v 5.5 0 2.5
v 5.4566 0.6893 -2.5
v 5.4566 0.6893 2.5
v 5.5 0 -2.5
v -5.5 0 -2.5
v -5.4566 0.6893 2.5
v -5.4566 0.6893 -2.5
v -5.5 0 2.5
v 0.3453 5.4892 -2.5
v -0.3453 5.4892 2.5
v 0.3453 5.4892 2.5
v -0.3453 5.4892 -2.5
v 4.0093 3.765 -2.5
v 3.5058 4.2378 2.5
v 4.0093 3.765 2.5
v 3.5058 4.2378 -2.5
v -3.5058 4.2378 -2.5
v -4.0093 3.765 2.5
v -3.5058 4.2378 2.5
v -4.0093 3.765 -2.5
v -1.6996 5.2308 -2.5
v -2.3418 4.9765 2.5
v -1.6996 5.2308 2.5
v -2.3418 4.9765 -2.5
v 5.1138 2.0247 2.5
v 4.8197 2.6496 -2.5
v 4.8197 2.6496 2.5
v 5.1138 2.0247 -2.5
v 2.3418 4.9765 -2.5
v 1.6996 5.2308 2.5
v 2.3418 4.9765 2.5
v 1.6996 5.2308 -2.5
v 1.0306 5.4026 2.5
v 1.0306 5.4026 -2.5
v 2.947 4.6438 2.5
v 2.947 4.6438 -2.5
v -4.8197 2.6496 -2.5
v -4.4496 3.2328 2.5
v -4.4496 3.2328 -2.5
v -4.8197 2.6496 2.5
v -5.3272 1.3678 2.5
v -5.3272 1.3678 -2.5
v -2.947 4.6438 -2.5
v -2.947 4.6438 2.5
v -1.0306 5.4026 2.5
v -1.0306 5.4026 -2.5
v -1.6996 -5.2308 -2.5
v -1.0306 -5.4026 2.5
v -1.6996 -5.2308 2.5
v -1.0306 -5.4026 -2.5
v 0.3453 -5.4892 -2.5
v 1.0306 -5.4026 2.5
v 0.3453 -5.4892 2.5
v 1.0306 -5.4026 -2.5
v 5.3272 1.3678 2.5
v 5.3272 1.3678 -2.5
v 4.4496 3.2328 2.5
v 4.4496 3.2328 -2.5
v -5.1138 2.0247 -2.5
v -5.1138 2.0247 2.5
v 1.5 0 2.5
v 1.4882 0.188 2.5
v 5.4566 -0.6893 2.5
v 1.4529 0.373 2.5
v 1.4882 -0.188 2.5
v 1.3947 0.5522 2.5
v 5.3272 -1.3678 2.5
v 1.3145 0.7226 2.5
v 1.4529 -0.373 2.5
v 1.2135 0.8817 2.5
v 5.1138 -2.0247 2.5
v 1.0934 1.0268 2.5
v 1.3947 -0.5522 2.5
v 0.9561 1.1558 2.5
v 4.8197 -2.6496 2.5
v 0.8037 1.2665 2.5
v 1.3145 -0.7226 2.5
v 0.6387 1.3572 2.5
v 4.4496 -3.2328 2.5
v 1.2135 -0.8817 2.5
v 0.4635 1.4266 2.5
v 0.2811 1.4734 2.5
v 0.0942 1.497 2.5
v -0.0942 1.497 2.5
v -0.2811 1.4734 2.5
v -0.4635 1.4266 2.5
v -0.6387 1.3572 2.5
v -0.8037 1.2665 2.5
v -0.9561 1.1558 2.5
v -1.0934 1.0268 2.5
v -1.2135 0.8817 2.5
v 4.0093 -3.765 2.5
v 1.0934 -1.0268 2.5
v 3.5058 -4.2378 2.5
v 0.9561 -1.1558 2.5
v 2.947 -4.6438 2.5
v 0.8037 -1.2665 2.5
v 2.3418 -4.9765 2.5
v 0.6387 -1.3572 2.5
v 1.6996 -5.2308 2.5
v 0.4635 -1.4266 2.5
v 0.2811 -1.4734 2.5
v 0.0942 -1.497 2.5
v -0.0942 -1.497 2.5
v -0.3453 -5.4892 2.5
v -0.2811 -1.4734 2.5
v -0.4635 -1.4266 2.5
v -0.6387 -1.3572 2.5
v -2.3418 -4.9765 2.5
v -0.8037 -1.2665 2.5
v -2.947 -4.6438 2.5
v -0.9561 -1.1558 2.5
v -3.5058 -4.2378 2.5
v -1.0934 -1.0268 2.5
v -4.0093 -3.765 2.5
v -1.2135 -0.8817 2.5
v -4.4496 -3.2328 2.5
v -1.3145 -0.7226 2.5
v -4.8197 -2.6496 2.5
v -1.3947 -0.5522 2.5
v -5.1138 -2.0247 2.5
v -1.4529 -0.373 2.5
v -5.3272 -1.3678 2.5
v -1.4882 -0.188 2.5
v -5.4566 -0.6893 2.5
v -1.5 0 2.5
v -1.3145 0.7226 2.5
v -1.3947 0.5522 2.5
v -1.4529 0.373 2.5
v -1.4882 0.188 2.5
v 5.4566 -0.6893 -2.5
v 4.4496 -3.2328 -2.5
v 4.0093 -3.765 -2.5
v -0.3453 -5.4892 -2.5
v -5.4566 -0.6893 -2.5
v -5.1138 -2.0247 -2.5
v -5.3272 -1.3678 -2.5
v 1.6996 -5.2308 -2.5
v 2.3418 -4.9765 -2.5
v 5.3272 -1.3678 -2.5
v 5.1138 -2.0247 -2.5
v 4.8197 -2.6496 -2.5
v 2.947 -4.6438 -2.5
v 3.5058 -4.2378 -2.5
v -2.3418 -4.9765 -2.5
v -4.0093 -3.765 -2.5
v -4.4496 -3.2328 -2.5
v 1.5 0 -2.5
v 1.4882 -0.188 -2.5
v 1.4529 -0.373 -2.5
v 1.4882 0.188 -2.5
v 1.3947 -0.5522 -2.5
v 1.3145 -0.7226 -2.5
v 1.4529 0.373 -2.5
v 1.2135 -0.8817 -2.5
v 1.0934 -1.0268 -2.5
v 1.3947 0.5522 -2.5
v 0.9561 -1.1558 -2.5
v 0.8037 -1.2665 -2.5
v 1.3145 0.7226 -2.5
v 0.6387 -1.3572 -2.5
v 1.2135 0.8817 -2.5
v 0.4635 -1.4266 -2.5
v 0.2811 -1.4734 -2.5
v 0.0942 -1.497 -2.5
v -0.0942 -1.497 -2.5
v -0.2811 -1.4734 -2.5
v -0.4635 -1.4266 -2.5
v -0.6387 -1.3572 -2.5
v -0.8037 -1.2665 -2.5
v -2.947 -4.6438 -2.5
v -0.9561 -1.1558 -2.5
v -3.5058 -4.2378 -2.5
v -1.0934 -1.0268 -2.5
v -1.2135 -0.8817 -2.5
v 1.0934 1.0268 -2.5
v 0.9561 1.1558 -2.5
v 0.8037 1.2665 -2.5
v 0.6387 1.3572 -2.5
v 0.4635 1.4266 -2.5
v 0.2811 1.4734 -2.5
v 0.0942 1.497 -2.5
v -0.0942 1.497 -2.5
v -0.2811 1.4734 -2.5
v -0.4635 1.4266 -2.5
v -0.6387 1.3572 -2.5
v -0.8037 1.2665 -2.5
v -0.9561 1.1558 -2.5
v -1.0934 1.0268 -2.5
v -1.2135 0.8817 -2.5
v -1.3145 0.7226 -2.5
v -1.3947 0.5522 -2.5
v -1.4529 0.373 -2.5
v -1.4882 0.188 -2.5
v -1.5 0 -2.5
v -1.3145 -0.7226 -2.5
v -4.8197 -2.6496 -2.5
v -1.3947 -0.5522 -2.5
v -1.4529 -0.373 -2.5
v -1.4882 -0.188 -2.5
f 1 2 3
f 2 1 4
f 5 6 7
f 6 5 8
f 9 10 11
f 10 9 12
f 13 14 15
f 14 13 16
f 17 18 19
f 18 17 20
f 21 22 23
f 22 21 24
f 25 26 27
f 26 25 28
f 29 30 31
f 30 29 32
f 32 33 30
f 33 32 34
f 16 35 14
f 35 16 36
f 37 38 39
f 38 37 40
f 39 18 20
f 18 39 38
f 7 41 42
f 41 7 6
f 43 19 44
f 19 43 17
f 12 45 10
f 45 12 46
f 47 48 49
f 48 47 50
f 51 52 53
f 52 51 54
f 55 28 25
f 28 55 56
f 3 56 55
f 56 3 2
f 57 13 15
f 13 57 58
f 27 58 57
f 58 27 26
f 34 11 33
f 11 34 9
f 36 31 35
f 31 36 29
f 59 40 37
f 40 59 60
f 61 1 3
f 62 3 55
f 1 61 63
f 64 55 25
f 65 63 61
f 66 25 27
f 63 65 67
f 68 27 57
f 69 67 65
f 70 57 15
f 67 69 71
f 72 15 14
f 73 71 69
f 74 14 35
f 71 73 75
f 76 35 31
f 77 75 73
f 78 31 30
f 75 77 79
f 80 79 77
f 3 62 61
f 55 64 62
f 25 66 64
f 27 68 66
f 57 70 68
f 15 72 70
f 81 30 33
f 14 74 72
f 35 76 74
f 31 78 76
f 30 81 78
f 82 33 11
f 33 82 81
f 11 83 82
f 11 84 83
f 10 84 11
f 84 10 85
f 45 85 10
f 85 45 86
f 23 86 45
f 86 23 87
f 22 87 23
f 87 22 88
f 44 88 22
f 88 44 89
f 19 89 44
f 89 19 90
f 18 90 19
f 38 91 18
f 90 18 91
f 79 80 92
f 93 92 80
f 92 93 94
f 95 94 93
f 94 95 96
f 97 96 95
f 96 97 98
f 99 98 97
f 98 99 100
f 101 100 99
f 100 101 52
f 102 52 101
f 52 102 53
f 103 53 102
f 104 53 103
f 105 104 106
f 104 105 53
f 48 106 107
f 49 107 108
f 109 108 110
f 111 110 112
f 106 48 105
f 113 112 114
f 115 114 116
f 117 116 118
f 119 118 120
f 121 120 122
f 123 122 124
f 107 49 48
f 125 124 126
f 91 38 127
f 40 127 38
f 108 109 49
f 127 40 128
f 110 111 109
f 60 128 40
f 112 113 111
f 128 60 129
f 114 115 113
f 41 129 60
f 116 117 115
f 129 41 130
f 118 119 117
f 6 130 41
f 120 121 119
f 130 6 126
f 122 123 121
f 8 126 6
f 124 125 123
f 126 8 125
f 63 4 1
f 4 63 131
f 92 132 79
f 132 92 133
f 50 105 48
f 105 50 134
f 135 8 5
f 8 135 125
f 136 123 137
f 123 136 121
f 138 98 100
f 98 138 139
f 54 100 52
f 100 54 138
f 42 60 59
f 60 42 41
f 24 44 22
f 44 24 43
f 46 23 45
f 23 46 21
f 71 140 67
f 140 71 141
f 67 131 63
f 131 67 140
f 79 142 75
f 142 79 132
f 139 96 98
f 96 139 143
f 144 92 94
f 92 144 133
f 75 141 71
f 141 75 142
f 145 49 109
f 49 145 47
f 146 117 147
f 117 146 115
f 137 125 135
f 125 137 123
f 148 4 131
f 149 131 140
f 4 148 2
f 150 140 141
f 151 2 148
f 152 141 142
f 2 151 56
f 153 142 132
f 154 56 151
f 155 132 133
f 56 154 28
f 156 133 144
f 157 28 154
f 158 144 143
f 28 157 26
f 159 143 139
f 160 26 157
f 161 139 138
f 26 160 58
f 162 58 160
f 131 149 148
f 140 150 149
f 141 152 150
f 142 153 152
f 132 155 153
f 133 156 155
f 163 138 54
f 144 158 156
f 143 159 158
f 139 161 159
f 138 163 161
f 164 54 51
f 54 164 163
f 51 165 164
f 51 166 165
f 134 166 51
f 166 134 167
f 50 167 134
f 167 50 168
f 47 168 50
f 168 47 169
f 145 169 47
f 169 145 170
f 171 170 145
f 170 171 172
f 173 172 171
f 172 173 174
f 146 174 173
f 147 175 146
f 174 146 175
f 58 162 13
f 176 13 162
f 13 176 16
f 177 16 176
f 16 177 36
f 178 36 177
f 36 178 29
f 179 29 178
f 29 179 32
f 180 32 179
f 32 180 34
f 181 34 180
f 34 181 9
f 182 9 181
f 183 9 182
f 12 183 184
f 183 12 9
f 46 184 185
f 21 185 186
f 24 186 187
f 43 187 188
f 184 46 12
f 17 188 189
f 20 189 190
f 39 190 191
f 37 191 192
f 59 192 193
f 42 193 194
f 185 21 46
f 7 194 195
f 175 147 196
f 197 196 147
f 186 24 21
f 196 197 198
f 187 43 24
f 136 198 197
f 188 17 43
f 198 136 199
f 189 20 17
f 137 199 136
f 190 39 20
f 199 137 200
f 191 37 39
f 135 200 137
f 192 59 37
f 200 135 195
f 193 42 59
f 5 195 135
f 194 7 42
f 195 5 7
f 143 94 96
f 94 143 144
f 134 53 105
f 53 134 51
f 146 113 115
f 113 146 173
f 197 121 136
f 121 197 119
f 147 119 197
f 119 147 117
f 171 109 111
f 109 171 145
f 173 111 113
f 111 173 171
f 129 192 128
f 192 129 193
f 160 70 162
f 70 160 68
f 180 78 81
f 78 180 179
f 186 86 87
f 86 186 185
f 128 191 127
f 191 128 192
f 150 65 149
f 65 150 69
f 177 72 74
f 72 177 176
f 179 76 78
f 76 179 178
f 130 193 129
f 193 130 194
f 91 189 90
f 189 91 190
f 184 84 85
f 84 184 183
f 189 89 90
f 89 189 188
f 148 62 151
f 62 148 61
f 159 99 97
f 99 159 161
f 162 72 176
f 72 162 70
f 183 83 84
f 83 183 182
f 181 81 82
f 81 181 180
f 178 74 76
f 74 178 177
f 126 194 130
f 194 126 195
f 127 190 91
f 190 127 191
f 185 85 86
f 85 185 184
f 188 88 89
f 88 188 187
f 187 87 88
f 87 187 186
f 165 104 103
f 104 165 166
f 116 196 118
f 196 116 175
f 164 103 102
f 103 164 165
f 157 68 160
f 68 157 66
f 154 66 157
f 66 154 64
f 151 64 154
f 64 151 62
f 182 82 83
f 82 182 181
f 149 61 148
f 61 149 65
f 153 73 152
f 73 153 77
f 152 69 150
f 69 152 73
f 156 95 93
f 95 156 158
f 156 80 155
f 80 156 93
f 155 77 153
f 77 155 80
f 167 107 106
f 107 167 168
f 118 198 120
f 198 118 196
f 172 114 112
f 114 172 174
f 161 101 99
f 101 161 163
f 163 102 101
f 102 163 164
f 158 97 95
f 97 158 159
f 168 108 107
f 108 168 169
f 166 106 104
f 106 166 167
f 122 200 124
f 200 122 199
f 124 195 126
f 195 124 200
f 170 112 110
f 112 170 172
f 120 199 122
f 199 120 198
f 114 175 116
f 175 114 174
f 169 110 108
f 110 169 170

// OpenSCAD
$fn = 50;


difference() {
	union() {
		translate(v = [0, 0, -2.5000000000]) {
			cylinder(h = 5, r = 5.5000000000);
		}
	}
	union() {
		translate(v = [0, 0, -100.0000000000]) {
			cylinder(h = 200, r = 1.5000000000);
		}
	}
}
